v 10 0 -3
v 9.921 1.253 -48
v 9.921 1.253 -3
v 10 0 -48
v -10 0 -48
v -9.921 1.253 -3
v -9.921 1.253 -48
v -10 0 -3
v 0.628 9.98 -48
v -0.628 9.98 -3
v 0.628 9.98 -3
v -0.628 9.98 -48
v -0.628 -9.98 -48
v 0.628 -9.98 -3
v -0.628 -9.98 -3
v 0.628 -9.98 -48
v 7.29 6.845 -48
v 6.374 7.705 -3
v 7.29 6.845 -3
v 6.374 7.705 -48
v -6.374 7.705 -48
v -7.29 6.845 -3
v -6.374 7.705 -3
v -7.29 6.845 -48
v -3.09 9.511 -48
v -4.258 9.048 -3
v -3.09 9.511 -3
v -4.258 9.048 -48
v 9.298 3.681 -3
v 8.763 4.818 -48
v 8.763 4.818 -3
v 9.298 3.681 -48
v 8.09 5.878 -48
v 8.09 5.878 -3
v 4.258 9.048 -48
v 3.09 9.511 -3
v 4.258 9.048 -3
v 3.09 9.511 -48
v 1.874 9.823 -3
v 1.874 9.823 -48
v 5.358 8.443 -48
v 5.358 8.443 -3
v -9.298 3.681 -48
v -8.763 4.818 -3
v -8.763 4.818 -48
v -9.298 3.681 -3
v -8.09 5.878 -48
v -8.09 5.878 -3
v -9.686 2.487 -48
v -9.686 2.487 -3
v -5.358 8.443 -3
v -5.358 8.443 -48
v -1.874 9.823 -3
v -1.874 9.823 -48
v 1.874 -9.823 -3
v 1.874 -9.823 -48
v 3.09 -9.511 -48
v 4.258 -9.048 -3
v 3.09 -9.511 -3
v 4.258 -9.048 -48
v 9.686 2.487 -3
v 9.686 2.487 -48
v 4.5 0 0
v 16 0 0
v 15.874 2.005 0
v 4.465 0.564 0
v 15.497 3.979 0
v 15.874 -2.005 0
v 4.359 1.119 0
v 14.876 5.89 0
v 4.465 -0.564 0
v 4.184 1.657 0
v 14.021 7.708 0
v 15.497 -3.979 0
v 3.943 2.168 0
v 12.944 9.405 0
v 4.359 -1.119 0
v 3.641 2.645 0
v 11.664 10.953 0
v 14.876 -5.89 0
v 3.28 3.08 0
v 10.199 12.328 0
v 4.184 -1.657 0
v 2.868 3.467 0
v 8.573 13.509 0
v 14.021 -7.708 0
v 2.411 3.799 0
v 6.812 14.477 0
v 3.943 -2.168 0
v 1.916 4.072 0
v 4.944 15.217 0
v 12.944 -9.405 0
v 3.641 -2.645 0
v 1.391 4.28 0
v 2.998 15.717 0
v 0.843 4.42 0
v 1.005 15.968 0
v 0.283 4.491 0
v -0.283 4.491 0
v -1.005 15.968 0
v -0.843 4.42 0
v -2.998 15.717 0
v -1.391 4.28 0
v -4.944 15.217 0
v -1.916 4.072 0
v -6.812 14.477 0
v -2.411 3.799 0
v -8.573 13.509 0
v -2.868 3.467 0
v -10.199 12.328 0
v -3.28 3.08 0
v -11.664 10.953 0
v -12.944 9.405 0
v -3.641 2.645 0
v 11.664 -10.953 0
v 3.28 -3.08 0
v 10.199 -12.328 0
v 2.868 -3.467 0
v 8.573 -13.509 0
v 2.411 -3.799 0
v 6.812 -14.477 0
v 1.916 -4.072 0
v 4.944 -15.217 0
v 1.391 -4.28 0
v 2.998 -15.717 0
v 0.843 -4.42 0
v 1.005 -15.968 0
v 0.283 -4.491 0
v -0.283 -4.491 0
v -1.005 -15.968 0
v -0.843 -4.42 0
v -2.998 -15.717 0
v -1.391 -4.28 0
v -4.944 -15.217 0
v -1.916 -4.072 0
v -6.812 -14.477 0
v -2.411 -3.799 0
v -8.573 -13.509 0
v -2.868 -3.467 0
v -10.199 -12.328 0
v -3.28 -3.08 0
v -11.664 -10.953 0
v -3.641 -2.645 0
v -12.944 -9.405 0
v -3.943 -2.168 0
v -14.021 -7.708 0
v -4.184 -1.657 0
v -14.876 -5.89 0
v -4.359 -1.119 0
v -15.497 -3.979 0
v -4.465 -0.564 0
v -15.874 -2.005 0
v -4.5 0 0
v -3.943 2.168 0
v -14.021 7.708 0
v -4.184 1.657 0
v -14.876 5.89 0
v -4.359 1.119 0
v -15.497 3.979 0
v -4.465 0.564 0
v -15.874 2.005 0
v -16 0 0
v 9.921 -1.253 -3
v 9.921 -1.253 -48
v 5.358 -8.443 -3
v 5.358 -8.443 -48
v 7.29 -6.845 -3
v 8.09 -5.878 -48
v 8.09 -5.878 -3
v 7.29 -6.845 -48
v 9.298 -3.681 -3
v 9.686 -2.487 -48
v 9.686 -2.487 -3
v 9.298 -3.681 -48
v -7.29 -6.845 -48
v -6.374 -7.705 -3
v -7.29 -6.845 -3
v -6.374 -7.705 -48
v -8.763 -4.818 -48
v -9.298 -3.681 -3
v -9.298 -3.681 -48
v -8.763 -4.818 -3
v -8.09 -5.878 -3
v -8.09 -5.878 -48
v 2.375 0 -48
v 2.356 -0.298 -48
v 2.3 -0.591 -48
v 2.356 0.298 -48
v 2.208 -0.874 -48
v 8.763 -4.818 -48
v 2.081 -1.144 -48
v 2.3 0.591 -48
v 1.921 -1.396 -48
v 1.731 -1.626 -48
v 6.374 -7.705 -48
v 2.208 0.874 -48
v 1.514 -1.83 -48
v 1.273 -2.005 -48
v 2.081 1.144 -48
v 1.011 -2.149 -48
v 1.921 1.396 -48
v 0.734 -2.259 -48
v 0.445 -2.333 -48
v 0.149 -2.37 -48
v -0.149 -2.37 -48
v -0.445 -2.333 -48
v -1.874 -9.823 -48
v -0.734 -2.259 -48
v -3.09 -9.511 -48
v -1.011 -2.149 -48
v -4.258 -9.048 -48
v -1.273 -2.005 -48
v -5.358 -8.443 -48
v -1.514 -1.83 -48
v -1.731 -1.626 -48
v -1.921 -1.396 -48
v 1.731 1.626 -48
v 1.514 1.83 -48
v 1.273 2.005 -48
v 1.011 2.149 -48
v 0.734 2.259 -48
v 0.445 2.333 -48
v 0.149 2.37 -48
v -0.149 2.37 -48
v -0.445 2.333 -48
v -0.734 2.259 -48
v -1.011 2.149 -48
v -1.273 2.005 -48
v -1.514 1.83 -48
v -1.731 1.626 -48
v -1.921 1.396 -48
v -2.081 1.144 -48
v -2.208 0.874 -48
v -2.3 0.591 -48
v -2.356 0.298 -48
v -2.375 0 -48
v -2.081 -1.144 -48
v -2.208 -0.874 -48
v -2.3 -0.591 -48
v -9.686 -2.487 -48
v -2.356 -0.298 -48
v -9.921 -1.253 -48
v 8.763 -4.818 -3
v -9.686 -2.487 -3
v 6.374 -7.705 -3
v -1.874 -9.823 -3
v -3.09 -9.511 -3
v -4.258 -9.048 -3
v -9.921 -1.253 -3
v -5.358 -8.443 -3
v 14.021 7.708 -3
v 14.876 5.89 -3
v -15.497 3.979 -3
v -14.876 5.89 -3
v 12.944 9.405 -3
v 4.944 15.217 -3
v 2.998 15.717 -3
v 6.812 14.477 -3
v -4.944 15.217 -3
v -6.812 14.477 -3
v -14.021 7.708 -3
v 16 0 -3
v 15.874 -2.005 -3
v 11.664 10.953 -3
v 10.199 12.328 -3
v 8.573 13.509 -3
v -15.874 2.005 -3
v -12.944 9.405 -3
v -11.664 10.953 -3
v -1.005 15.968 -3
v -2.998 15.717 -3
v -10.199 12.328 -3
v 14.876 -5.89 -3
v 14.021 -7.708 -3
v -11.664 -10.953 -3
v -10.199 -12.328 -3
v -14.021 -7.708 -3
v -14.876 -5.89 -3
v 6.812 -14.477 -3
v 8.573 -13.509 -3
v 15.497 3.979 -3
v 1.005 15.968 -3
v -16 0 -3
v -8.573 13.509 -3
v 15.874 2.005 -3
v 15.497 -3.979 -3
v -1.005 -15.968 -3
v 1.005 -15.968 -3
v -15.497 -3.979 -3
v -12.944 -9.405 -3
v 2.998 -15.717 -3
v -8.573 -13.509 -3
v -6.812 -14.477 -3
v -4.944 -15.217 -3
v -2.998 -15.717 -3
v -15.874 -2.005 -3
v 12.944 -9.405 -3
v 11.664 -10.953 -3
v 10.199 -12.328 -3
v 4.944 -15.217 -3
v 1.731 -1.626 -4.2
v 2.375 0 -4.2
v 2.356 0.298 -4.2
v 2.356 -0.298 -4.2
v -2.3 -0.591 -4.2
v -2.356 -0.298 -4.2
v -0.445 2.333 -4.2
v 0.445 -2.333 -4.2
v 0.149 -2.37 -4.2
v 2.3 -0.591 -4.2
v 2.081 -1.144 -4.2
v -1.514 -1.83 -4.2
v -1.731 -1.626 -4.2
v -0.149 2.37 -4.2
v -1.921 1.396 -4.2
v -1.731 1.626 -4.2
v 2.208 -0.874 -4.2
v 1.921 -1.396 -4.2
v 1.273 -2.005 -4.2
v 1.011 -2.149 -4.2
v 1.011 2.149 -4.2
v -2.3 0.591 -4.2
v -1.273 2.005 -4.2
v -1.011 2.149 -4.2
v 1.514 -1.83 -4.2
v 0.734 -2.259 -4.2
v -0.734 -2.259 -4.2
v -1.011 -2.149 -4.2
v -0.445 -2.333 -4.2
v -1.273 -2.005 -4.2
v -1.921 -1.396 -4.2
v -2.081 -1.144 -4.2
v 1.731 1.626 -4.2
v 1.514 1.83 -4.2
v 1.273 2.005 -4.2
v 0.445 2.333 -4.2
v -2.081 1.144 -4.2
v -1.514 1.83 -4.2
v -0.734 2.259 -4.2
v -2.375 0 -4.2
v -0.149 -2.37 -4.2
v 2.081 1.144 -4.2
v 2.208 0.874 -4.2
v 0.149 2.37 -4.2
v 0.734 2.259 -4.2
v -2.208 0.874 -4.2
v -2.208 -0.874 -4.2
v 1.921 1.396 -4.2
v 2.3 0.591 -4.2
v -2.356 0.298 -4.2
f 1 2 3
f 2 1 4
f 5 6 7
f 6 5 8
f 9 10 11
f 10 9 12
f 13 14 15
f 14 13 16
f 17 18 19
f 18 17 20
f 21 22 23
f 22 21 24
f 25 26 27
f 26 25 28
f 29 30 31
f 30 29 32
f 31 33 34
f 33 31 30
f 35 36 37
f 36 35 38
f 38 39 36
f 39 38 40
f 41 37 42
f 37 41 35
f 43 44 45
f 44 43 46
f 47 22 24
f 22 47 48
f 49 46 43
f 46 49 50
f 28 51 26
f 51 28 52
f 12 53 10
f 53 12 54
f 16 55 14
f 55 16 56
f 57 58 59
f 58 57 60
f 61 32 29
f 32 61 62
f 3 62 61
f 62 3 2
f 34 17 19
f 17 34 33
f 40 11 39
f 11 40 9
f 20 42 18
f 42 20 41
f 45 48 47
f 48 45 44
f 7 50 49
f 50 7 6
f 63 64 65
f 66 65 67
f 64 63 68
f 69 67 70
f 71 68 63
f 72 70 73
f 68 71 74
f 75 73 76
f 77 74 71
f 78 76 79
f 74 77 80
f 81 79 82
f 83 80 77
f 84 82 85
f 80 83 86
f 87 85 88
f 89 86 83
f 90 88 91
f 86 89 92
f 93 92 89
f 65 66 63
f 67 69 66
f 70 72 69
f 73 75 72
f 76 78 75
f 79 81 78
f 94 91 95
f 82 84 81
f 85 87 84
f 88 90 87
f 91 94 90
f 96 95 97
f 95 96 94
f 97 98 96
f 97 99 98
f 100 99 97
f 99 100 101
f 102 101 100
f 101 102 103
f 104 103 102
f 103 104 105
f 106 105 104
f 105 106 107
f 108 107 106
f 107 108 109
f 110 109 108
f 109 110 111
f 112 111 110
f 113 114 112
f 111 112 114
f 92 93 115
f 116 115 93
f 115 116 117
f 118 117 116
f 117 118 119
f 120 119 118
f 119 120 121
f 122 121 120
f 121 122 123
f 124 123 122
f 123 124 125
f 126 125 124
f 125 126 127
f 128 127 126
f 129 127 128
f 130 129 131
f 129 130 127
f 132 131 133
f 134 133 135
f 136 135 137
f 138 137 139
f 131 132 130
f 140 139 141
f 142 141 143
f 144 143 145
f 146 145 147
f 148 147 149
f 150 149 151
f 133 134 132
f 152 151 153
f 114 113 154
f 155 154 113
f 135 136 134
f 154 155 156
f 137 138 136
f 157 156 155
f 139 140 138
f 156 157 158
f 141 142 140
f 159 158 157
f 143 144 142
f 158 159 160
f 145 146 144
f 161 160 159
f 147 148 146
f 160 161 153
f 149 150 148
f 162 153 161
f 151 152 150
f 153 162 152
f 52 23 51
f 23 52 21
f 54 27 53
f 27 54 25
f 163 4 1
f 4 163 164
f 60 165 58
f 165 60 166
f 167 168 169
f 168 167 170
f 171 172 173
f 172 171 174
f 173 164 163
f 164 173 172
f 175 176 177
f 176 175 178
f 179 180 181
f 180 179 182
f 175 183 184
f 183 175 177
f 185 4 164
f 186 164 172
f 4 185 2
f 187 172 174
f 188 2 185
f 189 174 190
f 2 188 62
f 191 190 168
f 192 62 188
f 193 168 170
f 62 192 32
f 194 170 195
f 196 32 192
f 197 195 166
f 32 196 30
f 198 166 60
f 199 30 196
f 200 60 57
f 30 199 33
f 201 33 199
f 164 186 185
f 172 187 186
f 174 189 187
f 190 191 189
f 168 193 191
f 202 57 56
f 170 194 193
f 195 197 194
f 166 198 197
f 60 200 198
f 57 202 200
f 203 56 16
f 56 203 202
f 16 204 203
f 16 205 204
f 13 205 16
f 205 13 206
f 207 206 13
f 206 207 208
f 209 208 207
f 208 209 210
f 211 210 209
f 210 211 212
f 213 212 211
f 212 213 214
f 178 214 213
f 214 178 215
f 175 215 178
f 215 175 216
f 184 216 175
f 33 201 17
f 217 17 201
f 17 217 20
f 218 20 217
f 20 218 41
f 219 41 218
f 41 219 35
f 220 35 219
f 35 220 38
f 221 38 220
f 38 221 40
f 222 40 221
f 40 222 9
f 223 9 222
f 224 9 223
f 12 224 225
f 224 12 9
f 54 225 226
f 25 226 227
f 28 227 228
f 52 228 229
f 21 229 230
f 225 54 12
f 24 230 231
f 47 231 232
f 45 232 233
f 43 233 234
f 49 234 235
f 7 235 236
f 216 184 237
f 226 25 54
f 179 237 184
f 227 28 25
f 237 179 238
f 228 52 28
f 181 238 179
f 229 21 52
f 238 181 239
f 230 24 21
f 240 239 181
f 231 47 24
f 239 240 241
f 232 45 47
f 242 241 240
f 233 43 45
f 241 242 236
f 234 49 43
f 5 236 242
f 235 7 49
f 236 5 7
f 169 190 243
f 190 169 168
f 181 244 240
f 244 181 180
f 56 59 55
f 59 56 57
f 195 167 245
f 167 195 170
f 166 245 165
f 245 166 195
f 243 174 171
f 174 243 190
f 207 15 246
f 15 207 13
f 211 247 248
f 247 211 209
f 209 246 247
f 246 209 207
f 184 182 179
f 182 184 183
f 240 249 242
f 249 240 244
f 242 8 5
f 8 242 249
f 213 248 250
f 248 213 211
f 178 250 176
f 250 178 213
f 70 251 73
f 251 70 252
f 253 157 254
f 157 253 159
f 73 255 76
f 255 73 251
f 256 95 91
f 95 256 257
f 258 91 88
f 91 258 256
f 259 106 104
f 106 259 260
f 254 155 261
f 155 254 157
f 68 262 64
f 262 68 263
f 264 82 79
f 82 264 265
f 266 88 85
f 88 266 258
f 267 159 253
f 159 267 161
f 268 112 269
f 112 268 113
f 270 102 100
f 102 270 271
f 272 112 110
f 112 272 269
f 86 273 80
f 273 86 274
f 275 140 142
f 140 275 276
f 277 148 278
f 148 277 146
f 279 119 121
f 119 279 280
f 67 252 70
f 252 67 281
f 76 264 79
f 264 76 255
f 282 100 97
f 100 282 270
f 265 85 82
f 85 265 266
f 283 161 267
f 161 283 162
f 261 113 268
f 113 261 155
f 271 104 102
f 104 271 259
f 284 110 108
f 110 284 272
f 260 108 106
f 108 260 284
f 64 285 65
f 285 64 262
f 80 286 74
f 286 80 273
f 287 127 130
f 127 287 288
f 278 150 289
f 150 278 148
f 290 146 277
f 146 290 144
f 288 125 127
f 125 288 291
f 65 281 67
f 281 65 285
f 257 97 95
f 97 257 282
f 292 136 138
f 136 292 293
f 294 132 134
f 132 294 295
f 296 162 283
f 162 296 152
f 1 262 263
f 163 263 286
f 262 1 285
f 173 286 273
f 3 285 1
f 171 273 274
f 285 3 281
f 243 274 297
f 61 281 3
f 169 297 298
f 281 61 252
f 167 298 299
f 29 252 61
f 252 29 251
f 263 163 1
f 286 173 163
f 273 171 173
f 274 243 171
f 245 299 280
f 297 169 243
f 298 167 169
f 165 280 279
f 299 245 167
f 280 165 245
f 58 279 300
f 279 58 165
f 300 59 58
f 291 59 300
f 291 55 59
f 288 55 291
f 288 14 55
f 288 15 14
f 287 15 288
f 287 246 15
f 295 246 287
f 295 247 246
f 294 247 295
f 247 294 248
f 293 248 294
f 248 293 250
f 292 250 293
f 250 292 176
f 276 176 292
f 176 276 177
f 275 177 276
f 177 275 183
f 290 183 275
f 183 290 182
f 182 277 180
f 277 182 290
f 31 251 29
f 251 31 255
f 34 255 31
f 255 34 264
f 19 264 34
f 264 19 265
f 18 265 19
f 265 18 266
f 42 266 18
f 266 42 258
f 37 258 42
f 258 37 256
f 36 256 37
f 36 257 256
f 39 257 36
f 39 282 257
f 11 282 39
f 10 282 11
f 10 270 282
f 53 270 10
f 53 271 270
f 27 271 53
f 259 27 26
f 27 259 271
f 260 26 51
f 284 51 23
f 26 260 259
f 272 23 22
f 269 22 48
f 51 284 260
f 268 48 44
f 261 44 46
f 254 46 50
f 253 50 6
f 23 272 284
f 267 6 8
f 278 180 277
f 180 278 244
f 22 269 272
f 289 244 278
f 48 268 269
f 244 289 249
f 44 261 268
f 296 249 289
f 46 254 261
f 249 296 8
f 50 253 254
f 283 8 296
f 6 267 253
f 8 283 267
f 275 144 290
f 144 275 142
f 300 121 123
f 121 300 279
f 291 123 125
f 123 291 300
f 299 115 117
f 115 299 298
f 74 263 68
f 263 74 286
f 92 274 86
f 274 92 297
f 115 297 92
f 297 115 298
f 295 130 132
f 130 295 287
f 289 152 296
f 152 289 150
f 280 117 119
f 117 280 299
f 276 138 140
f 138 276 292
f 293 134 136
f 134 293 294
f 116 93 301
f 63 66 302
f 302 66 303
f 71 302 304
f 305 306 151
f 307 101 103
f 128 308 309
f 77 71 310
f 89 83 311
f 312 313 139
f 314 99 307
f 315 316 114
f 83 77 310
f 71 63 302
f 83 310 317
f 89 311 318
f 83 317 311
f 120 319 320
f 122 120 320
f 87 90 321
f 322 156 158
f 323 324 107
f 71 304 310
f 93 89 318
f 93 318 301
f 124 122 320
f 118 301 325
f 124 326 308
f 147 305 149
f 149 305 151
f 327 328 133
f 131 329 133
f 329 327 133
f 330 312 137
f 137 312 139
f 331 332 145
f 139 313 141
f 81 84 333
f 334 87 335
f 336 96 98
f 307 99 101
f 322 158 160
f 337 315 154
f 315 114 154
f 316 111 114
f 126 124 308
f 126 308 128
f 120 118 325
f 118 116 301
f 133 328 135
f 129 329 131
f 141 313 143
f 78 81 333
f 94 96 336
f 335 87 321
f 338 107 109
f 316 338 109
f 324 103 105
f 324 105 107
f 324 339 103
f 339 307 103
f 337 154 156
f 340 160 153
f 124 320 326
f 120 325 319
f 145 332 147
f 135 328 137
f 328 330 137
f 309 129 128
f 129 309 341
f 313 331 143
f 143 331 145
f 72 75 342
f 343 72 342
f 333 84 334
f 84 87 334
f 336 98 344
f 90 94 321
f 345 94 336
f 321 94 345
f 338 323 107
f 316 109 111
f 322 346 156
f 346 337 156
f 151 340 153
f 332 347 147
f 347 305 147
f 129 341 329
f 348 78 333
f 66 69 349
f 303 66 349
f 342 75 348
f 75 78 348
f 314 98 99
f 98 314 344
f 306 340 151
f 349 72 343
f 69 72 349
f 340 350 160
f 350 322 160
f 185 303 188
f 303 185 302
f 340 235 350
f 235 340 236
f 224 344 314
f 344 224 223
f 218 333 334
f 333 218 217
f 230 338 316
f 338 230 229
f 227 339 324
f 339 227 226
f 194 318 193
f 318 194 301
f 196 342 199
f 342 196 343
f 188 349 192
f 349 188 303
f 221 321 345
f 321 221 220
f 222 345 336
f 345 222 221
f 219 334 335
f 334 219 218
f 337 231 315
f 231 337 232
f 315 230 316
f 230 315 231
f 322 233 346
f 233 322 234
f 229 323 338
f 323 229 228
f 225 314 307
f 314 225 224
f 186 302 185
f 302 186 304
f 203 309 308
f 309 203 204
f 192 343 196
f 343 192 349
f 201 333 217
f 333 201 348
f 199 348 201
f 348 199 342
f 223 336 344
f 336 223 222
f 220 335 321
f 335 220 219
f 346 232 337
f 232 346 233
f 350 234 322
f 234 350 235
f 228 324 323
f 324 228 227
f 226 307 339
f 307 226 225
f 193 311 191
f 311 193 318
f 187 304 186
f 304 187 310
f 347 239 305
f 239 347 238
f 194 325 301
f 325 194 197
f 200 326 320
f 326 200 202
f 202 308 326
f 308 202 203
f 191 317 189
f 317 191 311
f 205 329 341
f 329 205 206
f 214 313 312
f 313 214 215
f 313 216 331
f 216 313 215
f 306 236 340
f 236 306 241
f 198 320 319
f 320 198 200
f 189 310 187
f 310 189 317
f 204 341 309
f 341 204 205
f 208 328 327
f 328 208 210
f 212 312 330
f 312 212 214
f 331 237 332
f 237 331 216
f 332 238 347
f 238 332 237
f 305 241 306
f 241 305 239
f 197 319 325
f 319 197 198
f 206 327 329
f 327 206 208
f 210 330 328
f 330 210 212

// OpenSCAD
$fn = 50;


difference() {
	union() {
		translate(v = [0, 0, -48.0000000000]) {
			cylinder(h = 48, r = 10.0000000000);
		}
		translate(v = [0, 0, -3.0000000000]) {
			cylinder(h = 3, r = 16.0000000000);
		}
	}
	union() {
		translate(v = [0, 0, 0]) {
			rotate(a = [0, 0, 0]) {
				difference() {
					union() {
						#translate(v = [0, 0, -48.0000000000]) {
							cylinder(h = 48, r = 2.2500000000);
						}
						#translate(v = [0, 0, -4.2000000000]) {
							cylinder(h = 4.2000000000, r1 = 2.3750000000, r2 = 4.5000000000);
						}
						#translate(v = [0, 0, -48.0000000000]) {
							cylinder(h = 48, r = 2.3750000000);
						}
						#translate(v = [0, 0, -48.0000000000]) {
							cylinder(h = 48, r = 2.2500000000);
						}
					}
					union();
				}
			}
		}
	}
}
